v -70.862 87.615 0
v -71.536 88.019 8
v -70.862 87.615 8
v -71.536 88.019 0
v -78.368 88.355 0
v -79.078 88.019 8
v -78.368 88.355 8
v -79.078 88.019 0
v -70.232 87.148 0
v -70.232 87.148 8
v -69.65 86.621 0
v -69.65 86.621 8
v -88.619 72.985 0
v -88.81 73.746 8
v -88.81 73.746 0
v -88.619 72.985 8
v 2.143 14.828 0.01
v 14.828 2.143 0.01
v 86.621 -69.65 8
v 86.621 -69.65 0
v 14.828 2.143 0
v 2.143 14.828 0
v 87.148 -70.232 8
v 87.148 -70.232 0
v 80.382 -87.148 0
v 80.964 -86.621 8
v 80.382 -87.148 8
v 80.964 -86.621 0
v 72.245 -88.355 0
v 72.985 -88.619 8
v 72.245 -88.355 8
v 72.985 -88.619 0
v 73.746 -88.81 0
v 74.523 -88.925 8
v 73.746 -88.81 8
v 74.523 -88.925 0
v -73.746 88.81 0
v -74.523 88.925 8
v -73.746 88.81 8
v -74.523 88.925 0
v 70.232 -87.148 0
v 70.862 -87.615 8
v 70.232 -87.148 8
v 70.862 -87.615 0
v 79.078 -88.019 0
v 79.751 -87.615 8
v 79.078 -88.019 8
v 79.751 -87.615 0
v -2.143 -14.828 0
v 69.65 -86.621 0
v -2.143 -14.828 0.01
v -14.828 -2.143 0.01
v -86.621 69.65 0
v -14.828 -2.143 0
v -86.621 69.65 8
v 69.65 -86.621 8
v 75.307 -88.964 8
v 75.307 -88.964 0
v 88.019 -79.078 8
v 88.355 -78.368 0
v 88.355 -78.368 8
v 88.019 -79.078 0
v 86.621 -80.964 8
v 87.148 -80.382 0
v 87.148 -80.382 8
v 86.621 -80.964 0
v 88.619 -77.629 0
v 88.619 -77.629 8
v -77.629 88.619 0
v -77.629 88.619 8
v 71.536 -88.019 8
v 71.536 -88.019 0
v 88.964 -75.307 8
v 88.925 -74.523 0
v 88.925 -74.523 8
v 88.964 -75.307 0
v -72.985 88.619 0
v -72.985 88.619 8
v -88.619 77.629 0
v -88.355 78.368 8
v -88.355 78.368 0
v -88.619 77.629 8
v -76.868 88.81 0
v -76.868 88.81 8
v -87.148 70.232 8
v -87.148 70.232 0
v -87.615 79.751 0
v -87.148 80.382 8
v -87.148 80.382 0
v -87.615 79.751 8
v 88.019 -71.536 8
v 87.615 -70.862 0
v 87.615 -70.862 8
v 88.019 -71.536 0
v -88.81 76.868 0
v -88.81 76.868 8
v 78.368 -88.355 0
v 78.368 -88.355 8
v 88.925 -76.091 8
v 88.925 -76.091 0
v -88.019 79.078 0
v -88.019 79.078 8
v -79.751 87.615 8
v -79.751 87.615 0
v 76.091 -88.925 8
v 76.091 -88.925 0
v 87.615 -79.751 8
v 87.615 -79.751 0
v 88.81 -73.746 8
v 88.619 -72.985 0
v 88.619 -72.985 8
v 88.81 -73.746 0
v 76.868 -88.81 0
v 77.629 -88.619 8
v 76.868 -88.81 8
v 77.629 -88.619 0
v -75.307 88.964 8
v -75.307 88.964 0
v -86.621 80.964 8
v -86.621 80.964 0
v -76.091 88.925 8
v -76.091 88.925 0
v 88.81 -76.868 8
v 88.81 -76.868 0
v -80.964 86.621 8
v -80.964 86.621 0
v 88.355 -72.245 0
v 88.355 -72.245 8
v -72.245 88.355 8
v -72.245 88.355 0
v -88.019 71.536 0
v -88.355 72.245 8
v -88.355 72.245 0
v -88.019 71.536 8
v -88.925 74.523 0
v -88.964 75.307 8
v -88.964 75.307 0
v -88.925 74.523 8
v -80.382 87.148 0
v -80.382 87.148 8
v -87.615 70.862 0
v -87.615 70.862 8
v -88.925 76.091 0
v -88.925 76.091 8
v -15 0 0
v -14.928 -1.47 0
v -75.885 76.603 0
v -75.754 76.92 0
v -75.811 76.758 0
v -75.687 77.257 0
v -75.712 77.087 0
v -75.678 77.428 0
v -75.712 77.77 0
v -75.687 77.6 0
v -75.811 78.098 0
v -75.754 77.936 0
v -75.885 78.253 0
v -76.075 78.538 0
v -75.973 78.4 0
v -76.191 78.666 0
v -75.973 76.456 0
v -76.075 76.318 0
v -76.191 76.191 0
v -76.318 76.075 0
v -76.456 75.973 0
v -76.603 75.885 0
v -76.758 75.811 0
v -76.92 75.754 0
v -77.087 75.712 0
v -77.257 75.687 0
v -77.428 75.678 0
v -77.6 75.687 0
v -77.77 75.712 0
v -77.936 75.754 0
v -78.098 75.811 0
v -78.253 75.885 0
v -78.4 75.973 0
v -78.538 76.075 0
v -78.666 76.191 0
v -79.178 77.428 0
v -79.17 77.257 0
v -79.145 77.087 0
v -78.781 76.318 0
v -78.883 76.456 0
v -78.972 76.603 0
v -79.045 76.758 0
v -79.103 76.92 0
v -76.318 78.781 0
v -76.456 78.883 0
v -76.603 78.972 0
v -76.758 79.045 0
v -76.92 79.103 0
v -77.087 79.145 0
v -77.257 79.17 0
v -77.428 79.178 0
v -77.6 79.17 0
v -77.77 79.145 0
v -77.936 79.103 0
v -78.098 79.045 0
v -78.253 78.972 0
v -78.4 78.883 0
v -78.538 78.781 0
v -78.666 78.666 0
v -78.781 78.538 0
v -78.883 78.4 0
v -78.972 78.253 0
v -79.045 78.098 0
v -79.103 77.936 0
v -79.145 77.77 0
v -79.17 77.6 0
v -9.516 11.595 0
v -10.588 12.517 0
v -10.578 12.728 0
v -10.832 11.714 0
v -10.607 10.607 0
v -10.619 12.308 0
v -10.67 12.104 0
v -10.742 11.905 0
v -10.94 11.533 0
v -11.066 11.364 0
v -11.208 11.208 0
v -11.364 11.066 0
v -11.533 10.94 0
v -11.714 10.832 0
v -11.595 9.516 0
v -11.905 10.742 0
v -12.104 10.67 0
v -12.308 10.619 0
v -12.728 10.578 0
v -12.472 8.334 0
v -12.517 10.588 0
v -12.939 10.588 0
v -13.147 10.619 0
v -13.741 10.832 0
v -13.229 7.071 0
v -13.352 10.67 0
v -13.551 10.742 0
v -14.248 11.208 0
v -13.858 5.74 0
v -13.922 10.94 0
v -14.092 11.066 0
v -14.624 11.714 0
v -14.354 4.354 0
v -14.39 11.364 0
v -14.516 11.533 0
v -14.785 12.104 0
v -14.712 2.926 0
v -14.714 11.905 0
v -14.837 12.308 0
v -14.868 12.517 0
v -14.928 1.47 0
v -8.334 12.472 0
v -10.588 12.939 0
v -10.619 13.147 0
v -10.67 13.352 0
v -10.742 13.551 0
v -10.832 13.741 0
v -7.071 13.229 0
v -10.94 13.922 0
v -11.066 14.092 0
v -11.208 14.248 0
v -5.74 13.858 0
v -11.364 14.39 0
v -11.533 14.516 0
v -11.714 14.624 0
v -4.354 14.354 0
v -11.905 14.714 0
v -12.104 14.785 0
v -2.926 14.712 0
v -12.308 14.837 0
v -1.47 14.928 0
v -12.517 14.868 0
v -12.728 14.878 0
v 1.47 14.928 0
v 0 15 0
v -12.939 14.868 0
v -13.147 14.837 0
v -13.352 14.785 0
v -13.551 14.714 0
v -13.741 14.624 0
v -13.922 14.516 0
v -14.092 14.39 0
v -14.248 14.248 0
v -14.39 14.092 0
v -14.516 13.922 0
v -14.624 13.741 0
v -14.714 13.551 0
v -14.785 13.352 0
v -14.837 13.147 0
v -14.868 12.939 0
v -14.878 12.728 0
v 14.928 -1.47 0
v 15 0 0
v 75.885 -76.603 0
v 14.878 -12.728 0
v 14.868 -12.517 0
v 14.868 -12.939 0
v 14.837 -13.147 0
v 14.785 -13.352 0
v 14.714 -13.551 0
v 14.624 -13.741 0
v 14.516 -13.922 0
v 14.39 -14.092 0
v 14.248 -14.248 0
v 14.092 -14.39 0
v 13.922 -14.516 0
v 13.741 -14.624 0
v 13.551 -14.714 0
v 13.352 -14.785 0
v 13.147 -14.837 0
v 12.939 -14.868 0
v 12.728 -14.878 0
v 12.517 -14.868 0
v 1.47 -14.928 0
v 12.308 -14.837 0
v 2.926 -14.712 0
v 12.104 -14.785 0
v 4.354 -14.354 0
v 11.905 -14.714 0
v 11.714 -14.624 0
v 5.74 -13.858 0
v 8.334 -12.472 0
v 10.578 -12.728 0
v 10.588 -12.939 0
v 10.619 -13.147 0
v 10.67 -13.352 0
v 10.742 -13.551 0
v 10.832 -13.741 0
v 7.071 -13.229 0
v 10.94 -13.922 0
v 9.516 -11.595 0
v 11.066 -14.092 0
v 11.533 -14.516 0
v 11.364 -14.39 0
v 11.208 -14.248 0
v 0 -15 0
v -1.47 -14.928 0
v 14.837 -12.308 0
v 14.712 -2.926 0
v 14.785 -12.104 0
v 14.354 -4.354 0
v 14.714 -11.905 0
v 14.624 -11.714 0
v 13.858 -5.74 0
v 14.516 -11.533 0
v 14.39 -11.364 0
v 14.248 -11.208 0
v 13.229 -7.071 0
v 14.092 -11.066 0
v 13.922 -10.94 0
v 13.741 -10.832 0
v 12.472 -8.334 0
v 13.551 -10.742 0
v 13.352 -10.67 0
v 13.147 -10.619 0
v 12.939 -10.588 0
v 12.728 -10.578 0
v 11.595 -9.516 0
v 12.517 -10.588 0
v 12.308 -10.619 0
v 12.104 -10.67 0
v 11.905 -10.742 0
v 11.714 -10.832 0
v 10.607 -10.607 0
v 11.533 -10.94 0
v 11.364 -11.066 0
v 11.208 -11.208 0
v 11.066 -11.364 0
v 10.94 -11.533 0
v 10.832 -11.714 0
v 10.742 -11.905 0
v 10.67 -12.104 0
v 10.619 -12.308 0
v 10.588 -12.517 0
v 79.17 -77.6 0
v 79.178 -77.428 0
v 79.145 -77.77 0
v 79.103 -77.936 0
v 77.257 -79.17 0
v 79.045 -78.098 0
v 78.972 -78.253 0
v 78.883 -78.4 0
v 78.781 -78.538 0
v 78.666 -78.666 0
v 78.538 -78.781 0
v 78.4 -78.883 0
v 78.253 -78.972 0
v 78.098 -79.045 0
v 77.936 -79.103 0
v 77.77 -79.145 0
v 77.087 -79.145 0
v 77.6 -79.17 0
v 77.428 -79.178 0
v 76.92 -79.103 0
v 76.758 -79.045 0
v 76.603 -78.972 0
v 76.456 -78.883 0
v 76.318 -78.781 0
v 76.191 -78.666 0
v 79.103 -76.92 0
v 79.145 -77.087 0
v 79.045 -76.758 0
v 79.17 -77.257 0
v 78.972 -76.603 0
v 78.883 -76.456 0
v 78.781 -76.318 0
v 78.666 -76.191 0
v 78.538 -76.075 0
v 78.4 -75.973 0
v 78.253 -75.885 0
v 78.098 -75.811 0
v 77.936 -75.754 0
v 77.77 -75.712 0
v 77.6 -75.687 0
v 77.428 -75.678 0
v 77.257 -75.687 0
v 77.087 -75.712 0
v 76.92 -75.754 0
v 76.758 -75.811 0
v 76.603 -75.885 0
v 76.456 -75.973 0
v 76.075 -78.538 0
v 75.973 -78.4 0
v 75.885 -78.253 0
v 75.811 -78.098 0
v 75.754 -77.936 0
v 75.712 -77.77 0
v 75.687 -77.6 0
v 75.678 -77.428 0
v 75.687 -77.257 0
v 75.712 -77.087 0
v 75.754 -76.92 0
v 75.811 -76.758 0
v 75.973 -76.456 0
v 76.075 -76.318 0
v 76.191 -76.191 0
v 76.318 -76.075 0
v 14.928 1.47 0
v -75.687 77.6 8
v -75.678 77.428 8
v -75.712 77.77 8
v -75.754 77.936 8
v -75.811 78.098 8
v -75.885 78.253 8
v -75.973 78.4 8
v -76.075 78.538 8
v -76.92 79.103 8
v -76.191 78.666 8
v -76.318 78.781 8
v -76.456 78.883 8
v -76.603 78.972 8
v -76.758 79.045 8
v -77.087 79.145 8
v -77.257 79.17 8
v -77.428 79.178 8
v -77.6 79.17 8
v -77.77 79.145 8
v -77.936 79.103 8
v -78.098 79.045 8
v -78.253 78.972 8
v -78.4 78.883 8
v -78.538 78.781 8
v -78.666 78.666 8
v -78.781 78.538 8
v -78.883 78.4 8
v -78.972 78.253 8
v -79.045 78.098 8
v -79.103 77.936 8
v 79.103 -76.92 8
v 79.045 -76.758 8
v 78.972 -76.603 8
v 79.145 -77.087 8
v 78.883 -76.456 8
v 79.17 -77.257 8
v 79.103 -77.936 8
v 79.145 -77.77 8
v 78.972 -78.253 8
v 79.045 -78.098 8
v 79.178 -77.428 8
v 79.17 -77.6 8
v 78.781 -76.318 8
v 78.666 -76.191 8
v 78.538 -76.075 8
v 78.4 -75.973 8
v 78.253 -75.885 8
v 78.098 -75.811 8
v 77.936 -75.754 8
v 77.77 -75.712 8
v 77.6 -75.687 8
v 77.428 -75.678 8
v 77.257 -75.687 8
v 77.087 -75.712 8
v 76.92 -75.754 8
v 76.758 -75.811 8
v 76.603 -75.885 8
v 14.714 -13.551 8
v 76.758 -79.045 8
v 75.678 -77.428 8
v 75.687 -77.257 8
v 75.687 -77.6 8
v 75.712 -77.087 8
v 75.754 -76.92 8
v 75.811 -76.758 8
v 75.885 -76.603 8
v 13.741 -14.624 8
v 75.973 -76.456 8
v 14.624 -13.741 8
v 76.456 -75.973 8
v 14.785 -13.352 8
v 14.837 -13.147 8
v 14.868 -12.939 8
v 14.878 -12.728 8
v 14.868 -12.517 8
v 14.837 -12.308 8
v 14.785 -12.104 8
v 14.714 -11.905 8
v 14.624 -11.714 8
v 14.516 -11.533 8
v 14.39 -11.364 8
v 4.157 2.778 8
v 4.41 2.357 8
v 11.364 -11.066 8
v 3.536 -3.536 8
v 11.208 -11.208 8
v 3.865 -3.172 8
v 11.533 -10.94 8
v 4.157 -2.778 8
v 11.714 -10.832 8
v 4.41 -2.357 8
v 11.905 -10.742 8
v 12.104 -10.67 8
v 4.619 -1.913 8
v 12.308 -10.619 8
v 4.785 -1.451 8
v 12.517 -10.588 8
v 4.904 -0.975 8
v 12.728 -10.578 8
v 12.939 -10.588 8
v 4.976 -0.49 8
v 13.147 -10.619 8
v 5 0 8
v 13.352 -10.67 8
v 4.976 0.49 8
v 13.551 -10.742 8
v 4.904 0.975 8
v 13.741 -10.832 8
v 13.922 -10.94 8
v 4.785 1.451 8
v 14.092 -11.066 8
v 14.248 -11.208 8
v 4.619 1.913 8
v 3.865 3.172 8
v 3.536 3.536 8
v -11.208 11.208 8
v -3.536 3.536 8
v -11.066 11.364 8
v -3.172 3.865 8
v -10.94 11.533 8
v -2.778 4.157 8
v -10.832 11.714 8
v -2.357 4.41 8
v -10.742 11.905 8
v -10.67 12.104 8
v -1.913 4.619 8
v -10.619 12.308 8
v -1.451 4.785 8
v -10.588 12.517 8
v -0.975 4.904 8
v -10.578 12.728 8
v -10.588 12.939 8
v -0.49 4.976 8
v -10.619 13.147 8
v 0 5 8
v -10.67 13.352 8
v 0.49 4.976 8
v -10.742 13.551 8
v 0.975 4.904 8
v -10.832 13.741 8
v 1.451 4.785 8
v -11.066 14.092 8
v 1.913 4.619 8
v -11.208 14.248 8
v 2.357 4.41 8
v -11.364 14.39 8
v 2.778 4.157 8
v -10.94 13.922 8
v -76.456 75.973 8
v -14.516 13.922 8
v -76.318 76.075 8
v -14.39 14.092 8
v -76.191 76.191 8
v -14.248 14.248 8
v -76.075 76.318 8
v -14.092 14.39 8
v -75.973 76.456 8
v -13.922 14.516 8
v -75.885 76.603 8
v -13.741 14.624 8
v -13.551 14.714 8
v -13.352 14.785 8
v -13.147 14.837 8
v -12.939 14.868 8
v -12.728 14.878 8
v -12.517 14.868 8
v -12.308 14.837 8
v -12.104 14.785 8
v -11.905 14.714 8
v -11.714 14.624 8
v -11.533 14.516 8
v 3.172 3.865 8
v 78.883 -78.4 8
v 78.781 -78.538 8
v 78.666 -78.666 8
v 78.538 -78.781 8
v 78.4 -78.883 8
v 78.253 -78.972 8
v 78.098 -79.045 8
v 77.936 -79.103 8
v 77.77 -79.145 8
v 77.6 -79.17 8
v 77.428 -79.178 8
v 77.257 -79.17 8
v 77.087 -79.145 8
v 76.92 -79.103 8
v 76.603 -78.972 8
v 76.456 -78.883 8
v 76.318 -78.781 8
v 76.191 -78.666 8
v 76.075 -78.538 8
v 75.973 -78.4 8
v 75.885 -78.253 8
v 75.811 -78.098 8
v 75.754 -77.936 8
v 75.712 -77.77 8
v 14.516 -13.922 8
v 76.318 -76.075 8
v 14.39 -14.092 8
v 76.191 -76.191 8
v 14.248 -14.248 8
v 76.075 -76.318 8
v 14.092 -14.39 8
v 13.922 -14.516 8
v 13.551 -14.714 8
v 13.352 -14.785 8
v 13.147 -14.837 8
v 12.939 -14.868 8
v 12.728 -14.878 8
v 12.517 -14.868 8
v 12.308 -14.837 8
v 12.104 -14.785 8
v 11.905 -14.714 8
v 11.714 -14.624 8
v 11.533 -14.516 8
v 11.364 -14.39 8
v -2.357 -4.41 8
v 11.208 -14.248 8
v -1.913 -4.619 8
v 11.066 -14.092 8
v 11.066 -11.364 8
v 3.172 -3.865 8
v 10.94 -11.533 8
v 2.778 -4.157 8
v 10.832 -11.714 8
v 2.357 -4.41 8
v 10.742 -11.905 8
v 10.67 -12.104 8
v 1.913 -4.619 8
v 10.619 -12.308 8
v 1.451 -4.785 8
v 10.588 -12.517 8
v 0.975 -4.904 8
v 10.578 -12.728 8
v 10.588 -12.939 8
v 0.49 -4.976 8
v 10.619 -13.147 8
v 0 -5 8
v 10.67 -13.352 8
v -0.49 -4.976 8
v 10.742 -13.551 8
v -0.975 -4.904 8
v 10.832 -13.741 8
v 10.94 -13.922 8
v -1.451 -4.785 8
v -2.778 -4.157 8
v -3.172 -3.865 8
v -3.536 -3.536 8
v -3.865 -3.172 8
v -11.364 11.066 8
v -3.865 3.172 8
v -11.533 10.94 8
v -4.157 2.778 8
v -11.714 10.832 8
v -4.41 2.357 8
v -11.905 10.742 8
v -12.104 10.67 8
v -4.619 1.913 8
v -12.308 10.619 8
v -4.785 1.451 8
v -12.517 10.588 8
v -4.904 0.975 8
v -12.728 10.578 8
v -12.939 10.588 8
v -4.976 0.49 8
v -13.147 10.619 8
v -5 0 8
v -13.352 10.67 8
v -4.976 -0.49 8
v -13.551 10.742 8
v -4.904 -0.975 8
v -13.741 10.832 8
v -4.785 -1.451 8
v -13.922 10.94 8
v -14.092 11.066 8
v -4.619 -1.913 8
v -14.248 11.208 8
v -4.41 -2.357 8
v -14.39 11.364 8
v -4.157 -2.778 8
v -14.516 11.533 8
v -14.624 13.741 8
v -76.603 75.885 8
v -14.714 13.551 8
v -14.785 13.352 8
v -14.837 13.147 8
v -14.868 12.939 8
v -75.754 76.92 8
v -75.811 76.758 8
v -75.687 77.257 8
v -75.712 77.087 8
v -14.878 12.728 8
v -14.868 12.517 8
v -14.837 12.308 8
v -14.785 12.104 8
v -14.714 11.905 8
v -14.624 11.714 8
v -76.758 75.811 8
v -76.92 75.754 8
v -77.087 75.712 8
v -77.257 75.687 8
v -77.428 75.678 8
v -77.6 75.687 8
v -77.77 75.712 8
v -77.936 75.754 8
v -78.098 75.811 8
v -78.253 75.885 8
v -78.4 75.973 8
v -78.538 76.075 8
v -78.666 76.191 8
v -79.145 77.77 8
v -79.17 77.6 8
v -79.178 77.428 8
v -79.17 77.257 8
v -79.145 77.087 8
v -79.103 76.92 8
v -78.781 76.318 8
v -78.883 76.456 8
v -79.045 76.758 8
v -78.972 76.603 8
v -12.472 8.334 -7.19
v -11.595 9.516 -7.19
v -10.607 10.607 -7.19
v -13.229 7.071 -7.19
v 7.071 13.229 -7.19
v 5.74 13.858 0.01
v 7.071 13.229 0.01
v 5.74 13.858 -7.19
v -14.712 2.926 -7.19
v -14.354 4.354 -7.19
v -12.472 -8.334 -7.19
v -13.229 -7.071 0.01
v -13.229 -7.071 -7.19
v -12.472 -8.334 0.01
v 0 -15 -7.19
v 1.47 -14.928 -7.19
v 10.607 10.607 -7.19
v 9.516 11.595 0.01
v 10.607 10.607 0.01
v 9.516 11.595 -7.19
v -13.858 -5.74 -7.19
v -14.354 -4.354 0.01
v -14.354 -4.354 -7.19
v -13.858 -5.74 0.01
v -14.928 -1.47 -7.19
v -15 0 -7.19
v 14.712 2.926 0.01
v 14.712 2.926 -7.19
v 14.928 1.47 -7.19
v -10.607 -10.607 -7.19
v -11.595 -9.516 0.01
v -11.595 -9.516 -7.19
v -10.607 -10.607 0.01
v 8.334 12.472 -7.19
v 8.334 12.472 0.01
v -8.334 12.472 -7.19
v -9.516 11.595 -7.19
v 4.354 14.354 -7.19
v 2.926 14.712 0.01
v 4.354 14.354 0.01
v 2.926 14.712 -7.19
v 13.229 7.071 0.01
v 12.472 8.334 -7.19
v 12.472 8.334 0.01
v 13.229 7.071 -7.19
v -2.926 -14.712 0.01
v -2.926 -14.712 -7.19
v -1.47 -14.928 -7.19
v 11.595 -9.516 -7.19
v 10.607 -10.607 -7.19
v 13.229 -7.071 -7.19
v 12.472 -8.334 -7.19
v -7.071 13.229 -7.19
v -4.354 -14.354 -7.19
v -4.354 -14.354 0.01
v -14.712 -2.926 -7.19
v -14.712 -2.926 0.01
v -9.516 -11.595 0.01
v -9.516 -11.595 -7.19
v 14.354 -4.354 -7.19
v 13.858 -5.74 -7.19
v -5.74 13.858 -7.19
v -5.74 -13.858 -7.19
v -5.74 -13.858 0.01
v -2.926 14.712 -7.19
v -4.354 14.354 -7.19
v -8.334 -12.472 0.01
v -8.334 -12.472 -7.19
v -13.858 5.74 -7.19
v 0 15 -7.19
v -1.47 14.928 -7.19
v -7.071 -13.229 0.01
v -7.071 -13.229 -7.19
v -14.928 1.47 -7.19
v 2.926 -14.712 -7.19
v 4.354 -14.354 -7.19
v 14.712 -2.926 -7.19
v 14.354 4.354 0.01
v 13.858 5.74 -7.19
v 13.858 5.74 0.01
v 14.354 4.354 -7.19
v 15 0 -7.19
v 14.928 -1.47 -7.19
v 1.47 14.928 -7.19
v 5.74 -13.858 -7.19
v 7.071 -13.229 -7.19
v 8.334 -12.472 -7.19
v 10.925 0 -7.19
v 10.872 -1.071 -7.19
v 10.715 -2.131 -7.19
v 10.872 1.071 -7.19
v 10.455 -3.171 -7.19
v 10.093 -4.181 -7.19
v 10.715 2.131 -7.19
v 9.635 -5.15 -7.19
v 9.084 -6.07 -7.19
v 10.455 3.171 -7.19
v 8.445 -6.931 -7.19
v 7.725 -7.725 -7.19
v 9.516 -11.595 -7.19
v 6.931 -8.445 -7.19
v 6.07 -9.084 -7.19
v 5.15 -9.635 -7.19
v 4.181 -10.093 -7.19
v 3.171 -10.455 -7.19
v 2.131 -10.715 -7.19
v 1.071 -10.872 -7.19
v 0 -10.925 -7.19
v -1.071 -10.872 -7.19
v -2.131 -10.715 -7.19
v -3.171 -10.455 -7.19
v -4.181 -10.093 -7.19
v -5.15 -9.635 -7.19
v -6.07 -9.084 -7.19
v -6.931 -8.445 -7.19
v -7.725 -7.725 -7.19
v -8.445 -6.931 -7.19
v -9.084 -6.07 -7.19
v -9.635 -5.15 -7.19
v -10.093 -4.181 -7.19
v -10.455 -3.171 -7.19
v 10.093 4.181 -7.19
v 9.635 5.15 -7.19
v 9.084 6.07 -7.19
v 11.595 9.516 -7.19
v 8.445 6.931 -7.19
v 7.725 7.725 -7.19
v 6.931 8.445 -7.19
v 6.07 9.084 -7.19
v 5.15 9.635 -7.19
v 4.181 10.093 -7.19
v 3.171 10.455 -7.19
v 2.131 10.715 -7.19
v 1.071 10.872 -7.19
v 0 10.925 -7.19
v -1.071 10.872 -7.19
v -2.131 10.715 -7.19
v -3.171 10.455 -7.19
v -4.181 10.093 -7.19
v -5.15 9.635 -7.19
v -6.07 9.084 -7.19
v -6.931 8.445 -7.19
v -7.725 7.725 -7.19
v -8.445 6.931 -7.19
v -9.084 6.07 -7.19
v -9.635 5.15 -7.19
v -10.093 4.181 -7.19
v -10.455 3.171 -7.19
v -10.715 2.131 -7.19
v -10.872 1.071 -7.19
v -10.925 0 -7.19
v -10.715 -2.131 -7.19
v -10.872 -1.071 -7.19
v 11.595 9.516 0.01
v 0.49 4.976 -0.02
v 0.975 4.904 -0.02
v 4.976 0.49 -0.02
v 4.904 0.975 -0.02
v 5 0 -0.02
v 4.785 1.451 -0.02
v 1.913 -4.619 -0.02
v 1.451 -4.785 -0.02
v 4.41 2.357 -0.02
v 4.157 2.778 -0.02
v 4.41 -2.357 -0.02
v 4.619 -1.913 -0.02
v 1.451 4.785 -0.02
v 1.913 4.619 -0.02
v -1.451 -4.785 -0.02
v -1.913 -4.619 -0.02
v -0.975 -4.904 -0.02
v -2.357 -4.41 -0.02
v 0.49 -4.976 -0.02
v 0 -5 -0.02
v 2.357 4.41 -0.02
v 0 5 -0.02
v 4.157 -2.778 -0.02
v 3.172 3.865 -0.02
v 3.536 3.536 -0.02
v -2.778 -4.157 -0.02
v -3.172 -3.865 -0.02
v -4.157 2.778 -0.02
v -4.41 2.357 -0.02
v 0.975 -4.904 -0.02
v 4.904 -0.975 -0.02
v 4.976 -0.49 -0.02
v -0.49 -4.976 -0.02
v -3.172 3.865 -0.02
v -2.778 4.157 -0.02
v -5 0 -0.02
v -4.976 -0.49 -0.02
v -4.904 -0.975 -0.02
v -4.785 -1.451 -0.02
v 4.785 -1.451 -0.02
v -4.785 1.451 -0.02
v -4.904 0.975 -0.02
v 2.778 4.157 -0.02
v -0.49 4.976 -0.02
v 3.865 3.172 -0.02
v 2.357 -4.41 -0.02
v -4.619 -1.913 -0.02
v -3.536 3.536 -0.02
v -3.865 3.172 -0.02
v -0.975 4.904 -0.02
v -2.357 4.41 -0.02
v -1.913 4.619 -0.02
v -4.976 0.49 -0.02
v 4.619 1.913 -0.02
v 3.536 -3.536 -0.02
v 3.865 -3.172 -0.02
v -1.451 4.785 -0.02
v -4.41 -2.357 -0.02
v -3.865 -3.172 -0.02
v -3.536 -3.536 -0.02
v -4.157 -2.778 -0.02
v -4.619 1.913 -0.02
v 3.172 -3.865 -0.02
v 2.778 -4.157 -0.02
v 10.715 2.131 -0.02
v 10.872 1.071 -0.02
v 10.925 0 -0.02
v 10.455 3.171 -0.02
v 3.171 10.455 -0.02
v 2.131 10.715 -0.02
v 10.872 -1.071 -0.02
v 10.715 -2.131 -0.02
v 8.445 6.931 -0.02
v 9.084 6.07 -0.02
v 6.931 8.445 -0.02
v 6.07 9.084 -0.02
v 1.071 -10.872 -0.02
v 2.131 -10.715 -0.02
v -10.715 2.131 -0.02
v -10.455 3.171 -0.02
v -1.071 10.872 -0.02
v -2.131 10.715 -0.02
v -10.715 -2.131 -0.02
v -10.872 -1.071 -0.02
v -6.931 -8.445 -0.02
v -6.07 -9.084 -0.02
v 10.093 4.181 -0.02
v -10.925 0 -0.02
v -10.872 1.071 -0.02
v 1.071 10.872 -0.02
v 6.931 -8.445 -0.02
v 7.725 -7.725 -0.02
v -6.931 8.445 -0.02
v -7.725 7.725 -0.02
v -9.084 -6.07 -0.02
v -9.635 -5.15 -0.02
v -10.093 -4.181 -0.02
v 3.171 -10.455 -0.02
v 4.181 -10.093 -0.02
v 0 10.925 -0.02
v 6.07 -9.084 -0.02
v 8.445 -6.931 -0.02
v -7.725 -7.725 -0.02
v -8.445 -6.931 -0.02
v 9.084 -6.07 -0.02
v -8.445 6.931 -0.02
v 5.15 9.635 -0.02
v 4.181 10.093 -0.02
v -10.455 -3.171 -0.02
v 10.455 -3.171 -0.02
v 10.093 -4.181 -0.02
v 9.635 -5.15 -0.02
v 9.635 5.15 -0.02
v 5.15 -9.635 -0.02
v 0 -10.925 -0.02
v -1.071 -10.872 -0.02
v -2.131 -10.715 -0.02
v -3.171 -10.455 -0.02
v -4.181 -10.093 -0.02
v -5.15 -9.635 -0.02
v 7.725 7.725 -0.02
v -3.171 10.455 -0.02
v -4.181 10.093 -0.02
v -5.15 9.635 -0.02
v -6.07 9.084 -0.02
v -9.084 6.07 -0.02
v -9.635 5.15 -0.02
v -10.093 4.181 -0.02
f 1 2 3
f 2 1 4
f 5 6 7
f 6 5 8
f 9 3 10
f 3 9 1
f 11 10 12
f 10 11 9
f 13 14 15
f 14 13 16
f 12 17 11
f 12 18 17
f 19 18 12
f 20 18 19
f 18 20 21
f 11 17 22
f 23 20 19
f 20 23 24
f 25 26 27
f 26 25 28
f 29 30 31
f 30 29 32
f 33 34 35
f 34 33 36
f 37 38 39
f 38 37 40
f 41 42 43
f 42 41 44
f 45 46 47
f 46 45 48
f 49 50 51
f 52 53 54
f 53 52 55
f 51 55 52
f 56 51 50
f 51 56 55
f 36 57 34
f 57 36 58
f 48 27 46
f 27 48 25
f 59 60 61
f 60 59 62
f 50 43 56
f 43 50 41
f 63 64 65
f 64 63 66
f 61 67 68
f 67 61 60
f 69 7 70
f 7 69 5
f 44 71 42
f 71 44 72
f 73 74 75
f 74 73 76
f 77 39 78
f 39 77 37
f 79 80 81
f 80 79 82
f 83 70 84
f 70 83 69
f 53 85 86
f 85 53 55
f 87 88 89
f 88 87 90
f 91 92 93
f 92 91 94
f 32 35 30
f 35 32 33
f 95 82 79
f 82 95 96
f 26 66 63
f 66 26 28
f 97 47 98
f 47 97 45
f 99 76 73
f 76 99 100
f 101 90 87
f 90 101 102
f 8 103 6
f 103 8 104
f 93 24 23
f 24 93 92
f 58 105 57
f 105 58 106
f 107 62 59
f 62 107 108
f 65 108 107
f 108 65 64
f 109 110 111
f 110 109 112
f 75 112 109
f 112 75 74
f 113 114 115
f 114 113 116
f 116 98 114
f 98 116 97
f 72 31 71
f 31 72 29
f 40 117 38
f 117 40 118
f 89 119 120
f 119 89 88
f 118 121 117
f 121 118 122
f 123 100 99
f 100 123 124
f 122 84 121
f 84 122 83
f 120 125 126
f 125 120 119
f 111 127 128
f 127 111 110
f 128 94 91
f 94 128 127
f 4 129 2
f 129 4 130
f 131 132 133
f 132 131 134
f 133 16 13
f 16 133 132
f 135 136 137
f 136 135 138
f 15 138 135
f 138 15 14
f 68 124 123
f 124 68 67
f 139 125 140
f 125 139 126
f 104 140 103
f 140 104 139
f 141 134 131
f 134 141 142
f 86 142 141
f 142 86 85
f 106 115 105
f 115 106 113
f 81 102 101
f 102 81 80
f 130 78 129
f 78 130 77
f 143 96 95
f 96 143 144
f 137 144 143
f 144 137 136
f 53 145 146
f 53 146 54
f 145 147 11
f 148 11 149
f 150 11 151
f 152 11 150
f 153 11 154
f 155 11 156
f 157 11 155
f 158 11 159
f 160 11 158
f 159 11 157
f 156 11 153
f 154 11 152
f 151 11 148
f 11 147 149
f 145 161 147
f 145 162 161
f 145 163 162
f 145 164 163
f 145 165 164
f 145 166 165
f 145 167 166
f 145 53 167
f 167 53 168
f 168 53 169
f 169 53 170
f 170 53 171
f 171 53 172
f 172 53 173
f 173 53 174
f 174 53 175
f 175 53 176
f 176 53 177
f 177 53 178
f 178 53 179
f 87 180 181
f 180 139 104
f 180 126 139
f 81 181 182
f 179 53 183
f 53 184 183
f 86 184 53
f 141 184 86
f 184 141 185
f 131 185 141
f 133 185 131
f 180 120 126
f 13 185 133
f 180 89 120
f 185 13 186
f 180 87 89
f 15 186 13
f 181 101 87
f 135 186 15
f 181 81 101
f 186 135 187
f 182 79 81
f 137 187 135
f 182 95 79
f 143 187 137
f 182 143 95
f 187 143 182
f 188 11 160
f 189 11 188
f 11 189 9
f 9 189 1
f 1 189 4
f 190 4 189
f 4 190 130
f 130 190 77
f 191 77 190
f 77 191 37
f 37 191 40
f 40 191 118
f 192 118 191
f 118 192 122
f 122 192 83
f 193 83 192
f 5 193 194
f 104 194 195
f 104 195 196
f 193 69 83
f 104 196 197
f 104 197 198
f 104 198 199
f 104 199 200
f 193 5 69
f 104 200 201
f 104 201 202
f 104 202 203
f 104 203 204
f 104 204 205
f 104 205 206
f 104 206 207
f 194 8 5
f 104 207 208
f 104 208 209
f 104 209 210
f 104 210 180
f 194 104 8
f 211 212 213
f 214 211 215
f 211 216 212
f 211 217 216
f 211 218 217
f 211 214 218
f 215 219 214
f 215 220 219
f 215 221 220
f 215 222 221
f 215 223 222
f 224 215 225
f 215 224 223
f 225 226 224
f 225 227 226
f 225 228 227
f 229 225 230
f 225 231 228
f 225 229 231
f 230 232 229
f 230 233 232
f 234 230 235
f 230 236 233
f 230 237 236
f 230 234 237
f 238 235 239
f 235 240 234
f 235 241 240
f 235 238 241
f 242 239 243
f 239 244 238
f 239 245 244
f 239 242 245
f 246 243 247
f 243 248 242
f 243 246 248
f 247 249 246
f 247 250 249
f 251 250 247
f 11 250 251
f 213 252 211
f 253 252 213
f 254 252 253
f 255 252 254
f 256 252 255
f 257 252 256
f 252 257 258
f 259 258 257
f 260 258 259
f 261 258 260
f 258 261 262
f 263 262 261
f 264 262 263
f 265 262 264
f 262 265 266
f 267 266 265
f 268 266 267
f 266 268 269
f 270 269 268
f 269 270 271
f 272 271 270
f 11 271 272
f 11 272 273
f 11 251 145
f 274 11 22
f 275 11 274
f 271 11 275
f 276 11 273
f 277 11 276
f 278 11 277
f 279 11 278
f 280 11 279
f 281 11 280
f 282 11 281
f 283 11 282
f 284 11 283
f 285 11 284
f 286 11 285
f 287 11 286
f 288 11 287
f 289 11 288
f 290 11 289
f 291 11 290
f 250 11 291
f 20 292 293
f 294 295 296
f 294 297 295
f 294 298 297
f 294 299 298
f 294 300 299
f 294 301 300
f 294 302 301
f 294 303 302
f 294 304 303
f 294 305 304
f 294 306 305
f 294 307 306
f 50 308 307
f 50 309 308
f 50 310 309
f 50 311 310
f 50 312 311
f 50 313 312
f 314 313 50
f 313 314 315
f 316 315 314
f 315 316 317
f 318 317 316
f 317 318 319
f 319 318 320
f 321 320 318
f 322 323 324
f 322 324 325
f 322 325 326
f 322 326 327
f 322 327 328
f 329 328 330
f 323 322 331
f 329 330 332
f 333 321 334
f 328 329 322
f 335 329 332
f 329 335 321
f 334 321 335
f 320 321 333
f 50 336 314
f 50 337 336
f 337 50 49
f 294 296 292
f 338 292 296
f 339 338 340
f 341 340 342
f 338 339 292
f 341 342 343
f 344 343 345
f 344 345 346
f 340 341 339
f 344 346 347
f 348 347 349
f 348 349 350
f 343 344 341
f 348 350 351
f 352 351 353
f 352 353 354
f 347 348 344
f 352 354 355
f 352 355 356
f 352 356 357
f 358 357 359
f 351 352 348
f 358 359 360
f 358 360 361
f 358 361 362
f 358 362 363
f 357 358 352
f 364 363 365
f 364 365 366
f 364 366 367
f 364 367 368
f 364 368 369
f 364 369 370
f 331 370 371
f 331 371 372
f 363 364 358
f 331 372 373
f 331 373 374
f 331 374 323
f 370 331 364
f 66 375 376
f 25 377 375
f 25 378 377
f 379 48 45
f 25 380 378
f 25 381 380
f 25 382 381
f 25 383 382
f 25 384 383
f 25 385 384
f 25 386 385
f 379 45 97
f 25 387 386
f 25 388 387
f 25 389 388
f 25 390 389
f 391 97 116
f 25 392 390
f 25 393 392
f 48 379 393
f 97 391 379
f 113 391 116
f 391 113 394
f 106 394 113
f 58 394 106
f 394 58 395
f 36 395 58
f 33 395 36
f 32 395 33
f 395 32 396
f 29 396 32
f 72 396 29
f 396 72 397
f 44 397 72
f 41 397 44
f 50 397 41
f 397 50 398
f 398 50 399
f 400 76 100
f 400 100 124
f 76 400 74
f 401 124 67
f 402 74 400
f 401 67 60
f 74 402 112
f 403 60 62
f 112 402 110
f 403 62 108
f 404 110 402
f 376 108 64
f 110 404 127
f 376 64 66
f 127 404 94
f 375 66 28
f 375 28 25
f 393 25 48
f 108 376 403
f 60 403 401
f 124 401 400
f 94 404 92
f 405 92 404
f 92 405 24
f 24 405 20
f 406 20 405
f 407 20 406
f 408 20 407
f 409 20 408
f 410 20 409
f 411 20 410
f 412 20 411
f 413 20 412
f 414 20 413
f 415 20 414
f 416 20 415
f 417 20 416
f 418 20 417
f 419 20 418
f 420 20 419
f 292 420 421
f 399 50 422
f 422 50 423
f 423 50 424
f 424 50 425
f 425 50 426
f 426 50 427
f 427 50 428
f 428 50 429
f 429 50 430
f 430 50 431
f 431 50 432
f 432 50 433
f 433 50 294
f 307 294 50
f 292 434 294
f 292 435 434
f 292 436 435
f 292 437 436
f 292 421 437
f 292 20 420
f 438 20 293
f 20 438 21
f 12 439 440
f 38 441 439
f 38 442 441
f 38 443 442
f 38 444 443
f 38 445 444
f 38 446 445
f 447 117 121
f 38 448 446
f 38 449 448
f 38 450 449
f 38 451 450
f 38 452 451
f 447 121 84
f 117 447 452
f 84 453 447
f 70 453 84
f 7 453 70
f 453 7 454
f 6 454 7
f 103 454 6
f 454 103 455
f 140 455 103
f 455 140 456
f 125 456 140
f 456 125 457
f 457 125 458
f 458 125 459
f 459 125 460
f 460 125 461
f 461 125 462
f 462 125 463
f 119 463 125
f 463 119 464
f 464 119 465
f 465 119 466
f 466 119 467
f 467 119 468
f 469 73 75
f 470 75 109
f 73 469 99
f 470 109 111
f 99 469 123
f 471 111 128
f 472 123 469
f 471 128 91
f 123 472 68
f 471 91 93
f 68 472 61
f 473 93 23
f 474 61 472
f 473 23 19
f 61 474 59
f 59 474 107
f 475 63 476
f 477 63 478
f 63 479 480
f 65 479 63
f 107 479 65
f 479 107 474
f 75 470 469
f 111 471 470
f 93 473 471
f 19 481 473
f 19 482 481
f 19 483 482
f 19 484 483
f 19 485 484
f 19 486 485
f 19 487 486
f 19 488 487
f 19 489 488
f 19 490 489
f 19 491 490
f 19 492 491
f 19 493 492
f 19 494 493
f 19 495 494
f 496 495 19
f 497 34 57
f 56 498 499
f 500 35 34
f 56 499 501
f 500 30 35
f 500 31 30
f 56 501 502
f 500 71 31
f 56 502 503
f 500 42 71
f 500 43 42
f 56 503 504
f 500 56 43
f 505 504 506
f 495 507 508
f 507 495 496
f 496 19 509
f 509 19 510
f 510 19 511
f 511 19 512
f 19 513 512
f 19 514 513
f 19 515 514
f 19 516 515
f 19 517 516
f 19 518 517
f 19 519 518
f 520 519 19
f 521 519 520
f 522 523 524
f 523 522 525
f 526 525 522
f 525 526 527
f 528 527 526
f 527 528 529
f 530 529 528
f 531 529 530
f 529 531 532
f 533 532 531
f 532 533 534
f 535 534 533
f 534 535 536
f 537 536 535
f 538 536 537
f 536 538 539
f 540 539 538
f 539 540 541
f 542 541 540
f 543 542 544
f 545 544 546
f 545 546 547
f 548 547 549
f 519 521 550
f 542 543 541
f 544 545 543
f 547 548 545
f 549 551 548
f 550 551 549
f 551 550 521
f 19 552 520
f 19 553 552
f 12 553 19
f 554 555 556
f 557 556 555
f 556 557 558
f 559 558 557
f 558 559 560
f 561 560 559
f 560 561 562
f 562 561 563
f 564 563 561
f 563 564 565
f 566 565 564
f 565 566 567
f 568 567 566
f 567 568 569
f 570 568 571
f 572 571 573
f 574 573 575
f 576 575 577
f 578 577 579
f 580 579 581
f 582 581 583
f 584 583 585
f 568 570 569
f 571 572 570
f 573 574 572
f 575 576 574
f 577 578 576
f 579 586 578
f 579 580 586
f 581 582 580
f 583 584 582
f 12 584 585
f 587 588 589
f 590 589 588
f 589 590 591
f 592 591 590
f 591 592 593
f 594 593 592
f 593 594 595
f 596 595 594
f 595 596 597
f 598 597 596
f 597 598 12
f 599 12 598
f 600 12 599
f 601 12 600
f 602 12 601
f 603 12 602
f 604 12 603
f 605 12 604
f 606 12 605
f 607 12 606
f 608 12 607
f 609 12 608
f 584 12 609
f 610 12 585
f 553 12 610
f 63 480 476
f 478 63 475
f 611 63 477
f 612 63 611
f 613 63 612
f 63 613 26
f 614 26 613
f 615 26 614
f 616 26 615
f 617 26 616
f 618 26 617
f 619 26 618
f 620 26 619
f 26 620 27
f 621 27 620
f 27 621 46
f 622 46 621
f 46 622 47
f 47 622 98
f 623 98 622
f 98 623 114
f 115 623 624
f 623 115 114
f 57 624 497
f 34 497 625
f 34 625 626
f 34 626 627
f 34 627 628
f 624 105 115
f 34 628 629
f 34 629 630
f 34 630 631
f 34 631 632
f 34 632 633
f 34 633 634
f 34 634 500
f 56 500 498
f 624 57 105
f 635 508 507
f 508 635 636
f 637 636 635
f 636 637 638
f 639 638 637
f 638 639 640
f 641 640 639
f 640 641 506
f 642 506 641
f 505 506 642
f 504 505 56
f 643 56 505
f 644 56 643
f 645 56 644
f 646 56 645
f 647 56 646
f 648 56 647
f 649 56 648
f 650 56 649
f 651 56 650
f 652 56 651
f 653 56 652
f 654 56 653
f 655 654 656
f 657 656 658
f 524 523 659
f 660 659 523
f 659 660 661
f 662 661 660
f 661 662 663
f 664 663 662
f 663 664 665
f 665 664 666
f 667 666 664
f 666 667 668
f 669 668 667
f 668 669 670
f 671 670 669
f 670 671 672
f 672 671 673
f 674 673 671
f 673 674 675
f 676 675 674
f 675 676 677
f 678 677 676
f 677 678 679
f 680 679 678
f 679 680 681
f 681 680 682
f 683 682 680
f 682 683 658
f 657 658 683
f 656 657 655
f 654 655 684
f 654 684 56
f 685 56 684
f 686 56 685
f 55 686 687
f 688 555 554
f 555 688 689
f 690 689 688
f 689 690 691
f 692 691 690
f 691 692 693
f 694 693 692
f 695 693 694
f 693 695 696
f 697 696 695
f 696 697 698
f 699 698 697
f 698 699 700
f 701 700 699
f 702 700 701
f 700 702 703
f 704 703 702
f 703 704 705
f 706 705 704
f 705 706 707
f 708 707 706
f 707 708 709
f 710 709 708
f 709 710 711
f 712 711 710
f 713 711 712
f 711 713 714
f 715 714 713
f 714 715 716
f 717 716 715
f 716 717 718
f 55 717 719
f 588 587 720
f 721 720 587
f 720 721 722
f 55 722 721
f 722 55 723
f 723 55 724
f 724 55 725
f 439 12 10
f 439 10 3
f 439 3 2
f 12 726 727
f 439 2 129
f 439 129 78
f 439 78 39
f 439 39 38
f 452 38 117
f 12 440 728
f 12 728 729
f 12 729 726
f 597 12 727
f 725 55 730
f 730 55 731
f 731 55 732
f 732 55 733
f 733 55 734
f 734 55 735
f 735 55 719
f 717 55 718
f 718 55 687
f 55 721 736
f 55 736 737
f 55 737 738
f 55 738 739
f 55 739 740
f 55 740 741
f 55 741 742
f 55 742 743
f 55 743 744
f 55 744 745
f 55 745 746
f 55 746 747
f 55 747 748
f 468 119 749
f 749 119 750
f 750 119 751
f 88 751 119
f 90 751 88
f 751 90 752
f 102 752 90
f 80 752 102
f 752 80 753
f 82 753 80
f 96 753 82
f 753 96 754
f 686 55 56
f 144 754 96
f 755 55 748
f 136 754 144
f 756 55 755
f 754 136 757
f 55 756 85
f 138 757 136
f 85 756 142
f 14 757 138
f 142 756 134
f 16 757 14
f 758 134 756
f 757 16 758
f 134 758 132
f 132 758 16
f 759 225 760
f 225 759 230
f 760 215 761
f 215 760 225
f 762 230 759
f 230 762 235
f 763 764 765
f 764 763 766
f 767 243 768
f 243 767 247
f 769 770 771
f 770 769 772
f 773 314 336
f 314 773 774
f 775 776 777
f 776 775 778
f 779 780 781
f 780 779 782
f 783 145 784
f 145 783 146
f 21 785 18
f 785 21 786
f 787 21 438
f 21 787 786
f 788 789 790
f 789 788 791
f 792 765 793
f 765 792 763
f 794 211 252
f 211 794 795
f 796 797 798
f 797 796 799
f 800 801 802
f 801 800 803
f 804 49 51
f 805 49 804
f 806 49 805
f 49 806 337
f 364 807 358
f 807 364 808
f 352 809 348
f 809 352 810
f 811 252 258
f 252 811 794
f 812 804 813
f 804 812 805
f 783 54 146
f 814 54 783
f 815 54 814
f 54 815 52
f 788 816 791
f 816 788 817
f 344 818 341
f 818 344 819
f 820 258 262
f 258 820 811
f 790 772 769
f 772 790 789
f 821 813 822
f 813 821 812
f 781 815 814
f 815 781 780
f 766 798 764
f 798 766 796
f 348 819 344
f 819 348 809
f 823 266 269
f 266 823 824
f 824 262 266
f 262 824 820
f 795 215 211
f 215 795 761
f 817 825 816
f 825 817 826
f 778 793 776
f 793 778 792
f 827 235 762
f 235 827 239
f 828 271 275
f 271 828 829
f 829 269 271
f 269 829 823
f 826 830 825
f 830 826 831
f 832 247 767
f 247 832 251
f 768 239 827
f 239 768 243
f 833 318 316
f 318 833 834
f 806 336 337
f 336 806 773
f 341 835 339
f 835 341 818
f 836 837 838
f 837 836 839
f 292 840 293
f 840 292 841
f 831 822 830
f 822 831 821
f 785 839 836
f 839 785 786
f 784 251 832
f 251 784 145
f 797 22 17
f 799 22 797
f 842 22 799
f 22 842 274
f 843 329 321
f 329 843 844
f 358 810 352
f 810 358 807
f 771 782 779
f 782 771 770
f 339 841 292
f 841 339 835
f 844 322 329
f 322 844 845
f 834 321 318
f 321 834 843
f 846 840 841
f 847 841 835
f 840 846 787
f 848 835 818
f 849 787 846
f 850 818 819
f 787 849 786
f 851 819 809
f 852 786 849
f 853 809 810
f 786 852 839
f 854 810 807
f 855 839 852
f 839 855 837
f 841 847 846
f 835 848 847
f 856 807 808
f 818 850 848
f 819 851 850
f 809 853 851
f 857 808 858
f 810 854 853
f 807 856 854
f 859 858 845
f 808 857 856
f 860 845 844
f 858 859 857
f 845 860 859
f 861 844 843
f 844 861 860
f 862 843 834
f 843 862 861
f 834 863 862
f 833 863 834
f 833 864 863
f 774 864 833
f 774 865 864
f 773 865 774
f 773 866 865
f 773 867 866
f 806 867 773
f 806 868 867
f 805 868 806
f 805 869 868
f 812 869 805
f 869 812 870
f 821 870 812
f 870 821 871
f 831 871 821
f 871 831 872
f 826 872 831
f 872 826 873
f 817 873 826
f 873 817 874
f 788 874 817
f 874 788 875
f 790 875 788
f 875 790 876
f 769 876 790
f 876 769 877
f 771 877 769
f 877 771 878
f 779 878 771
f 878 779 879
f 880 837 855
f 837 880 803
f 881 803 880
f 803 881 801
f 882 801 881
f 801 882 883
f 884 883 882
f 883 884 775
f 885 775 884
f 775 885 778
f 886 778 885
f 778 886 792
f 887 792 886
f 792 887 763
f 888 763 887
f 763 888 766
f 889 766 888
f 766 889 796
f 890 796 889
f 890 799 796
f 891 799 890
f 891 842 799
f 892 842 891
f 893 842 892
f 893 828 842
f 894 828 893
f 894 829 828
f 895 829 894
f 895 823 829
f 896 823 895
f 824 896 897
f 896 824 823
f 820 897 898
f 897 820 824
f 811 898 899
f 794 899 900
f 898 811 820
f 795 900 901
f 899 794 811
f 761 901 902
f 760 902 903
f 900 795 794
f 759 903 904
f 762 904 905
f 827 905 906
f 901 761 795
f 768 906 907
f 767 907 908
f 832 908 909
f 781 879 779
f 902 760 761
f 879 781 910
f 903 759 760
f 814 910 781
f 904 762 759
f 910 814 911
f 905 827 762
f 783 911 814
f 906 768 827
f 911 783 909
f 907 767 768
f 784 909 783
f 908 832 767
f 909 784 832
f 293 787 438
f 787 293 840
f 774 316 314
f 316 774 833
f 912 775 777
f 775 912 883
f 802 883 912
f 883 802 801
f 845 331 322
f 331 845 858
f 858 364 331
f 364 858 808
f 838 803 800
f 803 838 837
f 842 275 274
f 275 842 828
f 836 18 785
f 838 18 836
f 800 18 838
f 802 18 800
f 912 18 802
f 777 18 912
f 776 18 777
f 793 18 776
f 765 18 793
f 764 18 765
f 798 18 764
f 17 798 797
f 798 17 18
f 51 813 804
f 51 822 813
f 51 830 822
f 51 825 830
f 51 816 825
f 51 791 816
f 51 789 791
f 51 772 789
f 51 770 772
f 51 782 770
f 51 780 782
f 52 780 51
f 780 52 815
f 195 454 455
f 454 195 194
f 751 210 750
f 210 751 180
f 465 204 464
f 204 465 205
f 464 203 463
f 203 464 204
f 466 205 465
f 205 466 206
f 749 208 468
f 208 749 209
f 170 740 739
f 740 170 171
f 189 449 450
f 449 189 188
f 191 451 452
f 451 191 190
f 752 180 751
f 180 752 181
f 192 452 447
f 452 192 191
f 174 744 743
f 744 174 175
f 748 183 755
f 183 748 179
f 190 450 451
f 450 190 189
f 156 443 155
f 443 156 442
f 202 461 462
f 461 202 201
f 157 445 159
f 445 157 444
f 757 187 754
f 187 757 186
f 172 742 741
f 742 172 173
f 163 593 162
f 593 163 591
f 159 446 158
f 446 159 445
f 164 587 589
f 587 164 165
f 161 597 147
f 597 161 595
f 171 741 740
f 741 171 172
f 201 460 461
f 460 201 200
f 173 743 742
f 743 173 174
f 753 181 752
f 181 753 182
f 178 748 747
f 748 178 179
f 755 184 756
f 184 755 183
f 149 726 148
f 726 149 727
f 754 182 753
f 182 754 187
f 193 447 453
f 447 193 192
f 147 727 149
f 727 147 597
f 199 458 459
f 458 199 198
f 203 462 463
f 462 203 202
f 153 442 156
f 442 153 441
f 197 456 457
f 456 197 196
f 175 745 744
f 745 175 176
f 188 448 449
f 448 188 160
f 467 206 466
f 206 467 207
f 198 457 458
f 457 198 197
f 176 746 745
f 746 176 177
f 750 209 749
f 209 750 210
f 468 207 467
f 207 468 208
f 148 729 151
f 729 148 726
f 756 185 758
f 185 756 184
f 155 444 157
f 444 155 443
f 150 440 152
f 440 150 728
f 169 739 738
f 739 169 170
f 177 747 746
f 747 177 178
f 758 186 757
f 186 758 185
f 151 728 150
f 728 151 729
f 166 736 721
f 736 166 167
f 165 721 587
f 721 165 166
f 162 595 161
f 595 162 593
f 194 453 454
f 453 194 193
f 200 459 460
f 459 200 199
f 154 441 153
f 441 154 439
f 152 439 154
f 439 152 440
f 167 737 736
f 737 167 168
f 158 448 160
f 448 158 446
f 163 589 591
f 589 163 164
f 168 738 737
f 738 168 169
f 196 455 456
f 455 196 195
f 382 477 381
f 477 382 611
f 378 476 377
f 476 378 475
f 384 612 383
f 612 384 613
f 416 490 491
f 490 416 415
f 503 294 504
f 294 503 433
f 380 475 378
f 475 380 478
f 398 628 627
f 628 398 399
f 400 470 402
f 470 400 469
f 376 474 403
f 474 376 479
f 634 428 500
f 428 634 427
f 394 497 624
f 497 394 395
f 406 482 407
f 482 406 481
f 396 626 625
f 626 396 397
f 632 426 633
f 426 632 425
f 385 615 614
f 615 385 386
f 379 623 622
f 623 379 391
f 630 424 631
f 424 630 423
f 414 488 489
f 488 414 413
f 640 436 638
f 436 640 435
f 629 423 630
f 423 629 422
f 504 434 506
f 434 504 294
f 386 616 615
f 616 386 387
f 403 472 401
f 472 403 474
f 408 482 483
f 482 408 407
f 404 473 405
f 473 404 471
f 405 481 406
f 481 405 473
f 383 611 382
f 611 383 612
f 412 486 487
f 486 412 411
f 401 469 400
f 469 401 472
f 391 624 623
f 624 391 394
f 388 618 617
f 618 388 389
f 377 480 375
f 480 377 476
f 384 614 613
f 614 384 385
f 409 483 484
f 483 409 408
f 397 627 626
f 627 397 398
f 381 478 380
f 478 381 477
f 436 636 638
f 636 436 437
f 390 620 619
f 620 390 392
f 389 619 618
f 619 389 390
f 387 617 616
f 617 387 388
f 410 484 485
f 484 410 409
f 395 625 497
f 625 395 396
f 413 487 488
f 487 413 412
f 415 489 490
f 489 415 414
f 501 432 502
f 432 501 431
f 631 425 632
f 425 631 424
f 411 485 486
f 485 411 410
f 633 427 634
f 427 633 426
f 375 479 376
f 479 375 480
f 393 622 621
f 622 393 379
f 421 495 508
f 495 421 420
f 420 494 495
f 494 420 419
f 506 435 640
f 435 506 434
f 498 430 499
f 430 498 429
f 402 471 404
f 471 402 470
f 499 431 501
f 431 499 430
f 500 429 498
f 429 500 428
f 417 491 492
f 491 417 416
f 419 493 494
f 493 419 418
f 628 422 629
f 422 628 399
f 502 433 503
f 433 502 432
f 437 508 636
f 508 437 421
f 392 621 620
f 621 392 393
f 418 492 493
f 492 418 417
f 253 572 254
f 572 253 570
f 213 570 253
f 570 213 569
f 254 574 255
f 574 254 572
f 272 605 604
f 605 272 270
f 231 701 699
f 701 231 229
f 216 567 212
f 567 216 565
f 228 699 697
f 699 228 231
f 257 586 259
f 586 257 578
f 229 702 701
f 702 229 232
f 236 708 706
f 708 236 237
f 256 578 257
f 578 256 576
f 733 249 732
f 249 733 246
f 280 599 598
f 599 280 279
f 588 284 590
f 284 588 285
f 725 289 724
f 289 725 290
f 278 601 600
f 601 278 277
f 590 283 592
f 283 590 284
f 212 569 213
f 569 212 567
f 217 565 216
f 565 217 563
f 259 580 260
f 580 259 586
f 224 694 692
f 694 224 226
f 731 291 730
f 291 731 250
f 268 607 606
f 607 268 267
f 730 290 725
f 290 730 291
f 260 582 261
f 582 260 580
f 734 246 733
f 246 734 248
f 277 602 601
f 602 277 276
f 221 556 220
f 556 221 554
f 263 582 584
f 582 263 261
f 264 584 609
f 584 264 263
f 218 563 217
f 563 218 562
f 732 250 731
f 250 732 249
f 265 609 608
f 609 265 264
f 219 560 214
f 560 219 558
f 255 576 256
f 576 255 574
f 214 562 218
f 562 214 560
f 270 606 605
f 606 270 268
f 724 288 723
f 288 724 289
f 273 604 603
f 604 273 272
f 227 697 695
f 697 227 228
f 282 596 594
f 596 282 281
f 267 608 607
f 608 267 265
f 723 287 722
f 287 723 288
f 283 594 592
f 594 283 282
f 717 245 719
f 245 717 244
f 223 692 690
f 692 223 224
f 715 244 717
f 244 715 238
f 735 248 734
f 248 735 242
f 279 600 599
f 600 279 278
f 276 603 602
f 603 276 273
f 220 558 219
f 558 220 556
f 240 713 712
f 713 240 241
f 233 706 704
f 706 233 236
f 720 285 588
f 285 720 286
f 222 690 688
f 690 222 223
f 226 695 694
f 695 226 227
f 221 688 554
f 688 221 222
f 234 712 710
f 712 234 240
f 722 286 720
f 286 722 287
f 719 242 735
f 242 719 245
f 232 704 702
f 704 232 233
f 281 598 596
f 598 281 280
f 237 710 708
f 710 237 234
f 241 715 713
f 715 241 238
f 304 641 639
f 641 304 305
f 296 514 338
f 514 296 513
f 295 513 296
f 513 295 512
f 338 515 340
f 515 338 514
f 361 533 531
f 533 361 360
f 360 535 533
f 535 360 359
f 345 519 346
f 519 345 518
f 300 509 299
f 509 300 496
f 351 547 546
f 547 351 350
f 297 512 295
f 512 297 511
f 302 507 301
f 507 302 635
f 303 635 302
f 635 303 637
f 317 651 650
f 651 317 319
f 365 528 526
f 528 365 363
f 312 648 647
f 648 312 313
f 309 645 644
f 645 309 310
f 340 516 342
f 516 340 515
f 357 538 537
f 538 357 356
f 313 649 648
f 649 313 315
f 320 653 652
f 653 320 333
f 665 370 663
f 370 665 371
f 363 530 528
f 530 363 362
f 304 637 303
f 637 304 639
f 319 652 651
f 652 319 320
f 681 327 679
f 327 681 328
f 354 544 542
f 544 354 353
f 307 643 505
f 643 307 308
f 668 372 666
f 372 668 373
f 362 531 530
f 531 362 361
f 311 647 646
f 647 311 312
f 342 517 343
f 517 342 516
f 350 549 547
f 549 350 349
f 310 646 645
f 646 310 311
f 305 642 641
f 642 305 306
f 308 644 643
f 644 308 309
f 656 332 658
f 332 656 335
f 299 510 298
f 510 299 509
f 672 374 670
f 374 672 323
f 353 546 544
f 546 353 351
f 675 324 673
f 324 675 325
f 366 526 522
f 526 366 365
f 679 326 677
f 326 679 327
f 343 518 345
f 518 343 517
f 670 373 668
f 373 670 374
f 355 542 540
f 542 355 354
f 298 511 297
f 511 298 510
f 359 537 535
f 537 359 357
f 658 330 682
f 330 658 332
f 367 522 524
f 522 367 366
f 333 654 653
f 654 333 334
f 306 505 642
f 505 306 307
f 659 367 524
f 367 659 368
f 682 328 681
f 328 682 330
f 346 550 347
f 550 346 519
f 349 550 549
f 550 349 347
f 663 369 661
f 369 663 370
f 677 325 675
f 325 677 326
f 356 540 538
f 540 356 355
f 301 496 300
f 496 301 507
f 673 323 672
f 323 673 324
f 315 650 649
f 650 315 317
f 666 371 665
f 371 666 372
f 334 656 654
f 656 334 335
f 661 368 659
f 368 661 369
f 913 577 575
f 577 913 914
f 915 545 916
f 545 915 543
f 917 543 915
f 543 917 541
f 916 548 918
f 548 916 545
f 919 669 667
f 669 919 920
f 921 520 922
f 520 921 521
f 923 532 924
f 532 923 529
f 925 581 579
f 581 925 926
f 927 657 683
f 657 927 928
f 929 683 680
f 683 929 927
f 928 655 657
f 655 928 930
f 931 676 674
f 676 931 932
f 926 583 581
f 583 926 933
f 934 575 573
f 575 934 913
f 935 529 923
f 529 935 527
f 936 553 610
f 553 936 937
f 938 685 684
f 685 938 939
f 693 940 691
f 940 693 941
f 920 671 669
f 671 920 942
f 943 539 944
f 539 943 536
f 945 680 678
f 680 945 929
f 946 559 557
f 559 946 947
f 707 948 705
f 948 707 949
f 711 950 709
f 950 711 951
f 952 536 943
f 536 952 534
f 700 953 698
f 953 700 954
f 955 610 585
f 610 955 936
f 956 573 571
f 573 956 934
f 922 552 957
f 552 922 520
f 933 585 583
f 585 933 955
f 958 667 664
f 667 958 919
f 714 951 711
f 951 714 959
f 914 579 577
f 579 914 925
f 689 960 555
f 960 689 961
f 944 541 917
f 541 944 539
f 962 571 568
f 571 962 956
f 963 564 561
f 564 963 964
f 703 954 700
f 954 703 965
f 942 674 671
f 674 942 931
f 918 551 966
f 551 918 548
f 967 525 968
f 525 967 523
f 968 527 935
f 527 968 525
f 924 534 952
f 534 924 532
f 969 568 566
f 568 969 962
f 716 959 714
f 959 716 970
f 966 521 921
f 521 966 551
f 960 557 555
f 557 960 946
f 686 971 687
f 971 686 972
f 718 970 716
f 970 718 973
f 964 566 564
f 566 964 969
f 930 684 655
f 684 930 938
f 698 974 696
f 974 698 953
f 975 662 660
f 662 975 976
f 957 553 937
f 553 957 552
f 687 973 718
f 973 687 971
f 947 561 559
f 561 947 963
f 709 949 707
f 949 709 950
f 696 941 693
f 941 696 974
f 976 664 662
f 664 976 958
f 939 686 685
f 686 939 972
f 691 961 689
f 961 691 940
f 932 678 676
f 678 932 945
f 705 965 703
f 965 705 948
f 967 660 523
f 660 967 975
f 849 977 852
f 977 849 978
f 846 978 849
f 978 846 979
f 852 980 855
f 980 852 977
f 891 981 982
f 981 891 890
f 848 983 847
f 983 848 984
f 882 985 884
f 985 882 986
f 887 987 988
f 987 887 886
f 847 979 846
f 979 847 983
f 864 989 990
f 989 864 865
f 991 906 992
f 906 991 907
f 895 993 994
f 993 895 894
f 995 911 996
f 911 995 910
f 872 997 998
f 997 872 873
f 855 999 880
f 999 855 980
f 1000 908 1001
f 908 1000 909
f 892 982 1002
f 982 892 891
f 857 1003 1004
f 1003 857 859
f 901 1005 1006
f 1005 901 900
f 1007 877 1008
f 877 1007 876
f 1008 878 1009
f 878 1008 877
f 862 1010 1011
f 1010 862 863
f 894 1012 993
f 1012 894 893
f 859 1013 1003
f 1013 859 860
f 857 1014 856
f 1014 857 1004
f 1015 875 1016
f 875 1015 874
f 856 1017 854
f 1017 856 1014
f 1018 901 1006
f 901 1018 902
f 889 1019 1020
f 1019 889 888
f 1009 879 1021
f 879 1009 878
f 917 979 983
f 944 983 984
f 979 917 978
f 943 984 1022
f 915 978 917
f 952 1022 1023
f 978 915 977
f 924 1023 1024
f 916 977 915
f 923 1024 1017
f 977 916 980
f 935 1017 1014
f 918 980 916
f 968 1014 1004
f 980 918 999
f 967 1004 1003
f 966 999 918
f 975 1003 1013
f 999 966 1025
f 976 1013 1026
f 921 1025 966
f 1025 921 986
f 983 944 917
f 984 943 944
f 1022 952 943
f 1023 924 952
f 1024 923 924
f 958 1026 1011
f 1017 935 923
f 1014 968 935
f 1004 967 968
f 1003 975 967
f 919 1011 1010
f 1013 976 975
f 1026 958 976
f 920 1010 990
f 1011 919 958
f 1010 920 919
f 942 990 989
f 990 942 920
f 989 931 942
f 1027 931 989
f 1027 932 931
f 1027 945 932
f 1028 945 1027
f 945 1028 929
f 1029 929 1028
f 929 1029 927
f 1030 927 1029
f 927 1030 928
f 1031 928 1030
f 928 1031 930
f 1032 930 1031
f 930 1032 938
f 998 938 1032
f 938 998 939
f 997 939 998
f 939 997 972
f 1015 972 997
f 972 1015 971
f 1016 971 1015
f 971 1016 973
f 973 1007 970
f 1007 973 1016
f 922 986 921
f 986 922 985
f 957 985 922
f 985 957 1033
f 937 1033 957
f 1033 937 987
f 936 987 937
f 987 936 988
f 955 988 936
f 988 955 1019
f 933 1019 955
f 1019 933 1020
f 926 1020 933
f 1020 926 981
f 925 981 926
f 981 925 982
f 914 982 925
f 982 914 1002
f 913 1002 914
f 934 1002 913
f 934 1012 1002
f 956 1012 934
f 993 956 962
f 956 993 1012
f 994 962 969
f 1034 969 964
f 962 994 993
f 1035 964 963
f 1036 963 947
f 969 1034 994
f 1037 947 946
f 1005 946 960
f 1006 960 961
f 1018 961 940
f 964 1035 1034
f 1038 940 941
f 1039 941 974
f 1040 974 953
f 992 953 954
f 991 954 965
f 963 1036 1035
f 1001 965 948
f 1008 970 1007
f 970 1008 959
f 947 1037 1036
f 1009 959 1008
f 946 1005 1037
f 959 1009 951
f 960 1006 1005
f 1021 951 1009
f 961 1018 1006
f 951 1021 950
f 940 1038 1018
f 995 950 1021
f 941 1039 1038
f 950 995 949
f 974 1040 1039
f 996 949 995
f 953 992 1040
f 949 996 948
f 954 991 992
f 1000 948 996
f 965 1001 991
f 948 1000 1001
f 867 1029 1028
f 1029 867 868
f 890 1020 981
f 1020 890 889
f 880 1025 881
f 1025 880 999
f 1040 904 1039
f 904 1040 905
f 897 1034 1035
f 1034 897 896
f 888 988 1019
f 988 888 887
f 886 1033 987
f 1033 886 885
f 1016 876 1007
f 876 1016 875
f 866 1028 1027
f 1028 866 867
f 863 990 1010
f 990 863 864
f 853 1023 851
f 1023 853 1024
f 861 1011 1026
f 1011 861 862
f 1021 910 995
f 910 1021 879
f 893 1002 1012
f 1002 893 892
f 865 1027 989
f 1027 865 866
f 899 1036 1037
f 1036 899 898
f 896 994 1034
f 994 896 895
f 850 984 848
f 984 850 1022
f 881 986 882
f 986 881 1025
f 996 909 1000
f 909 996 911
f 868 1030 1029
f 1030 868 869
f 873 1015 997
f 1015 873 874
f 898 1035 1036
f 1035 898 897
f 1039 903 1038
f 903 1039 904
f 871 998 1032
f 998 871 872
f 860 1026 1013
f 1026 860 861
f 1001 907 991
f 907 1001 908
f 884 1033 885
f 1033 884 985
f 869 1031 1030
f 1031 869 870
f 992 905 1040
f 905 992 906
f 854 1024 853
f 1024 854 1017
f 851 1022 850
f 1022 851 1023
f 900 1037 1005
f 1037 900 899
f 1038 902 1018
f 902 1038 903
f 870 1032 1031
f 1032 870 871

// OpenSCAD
// Gen-CQ — rear BEARING BRIDGE (bar endbell, 2026-10-10): a 608 boss on a 24 mm wide bar that spans the
// two frame rods at 135 deg and 135+180 deg (R = flange_bolt_r). The front bridge uses the rods at 45/225 deg, the rear
// bridge the rods at 135/315 deg, so the two bridges cross at 90 deg and the stator is held at 4 points.
// A bar instead of a full disc is what lets this big-ring kit fit ONE 410 mm plate. Print flat face DOWN (boss up, no supports).
// Brace holes (temporary M4 jack rods, R = brace_r) sit on the bar axis.
include <parameters.scad>;
$fn = 64;
bar_w = 24;
bar_len = 2 * (flange_bolt_r + 9);
module bar_2d() { offset(r=8) offset(delta=-8) square([bar_len, bar_w], center=true); }
difference() {
    rotate([0, 0, 135]) union() {
        linear_extrude(endbell_thick) bar_2d();
        translate([0, 0, -bearing_h + 0.01]) cylinder(d=30, h=bearing_h);
    }
    translate([0, 0, -bearing_h - 0.1]) cylinder(d=endbell_shaft_clear, h=50);
    translate([0, 0, -bearing_h - 0.02]) cylinder(d=bearing_d, h=bearing_h);
    for (s = [0, 180]) rotate([0, 0, 135 + s]) translate([flange_bolt_r, 0, -20]) cylinder(d=m3_clear, h=60);
    for (a = brace_angles) translate([brace_r*cos(a), brace_r*sin(a), -20]) cylinder(d=brace_d, h=50);
}
